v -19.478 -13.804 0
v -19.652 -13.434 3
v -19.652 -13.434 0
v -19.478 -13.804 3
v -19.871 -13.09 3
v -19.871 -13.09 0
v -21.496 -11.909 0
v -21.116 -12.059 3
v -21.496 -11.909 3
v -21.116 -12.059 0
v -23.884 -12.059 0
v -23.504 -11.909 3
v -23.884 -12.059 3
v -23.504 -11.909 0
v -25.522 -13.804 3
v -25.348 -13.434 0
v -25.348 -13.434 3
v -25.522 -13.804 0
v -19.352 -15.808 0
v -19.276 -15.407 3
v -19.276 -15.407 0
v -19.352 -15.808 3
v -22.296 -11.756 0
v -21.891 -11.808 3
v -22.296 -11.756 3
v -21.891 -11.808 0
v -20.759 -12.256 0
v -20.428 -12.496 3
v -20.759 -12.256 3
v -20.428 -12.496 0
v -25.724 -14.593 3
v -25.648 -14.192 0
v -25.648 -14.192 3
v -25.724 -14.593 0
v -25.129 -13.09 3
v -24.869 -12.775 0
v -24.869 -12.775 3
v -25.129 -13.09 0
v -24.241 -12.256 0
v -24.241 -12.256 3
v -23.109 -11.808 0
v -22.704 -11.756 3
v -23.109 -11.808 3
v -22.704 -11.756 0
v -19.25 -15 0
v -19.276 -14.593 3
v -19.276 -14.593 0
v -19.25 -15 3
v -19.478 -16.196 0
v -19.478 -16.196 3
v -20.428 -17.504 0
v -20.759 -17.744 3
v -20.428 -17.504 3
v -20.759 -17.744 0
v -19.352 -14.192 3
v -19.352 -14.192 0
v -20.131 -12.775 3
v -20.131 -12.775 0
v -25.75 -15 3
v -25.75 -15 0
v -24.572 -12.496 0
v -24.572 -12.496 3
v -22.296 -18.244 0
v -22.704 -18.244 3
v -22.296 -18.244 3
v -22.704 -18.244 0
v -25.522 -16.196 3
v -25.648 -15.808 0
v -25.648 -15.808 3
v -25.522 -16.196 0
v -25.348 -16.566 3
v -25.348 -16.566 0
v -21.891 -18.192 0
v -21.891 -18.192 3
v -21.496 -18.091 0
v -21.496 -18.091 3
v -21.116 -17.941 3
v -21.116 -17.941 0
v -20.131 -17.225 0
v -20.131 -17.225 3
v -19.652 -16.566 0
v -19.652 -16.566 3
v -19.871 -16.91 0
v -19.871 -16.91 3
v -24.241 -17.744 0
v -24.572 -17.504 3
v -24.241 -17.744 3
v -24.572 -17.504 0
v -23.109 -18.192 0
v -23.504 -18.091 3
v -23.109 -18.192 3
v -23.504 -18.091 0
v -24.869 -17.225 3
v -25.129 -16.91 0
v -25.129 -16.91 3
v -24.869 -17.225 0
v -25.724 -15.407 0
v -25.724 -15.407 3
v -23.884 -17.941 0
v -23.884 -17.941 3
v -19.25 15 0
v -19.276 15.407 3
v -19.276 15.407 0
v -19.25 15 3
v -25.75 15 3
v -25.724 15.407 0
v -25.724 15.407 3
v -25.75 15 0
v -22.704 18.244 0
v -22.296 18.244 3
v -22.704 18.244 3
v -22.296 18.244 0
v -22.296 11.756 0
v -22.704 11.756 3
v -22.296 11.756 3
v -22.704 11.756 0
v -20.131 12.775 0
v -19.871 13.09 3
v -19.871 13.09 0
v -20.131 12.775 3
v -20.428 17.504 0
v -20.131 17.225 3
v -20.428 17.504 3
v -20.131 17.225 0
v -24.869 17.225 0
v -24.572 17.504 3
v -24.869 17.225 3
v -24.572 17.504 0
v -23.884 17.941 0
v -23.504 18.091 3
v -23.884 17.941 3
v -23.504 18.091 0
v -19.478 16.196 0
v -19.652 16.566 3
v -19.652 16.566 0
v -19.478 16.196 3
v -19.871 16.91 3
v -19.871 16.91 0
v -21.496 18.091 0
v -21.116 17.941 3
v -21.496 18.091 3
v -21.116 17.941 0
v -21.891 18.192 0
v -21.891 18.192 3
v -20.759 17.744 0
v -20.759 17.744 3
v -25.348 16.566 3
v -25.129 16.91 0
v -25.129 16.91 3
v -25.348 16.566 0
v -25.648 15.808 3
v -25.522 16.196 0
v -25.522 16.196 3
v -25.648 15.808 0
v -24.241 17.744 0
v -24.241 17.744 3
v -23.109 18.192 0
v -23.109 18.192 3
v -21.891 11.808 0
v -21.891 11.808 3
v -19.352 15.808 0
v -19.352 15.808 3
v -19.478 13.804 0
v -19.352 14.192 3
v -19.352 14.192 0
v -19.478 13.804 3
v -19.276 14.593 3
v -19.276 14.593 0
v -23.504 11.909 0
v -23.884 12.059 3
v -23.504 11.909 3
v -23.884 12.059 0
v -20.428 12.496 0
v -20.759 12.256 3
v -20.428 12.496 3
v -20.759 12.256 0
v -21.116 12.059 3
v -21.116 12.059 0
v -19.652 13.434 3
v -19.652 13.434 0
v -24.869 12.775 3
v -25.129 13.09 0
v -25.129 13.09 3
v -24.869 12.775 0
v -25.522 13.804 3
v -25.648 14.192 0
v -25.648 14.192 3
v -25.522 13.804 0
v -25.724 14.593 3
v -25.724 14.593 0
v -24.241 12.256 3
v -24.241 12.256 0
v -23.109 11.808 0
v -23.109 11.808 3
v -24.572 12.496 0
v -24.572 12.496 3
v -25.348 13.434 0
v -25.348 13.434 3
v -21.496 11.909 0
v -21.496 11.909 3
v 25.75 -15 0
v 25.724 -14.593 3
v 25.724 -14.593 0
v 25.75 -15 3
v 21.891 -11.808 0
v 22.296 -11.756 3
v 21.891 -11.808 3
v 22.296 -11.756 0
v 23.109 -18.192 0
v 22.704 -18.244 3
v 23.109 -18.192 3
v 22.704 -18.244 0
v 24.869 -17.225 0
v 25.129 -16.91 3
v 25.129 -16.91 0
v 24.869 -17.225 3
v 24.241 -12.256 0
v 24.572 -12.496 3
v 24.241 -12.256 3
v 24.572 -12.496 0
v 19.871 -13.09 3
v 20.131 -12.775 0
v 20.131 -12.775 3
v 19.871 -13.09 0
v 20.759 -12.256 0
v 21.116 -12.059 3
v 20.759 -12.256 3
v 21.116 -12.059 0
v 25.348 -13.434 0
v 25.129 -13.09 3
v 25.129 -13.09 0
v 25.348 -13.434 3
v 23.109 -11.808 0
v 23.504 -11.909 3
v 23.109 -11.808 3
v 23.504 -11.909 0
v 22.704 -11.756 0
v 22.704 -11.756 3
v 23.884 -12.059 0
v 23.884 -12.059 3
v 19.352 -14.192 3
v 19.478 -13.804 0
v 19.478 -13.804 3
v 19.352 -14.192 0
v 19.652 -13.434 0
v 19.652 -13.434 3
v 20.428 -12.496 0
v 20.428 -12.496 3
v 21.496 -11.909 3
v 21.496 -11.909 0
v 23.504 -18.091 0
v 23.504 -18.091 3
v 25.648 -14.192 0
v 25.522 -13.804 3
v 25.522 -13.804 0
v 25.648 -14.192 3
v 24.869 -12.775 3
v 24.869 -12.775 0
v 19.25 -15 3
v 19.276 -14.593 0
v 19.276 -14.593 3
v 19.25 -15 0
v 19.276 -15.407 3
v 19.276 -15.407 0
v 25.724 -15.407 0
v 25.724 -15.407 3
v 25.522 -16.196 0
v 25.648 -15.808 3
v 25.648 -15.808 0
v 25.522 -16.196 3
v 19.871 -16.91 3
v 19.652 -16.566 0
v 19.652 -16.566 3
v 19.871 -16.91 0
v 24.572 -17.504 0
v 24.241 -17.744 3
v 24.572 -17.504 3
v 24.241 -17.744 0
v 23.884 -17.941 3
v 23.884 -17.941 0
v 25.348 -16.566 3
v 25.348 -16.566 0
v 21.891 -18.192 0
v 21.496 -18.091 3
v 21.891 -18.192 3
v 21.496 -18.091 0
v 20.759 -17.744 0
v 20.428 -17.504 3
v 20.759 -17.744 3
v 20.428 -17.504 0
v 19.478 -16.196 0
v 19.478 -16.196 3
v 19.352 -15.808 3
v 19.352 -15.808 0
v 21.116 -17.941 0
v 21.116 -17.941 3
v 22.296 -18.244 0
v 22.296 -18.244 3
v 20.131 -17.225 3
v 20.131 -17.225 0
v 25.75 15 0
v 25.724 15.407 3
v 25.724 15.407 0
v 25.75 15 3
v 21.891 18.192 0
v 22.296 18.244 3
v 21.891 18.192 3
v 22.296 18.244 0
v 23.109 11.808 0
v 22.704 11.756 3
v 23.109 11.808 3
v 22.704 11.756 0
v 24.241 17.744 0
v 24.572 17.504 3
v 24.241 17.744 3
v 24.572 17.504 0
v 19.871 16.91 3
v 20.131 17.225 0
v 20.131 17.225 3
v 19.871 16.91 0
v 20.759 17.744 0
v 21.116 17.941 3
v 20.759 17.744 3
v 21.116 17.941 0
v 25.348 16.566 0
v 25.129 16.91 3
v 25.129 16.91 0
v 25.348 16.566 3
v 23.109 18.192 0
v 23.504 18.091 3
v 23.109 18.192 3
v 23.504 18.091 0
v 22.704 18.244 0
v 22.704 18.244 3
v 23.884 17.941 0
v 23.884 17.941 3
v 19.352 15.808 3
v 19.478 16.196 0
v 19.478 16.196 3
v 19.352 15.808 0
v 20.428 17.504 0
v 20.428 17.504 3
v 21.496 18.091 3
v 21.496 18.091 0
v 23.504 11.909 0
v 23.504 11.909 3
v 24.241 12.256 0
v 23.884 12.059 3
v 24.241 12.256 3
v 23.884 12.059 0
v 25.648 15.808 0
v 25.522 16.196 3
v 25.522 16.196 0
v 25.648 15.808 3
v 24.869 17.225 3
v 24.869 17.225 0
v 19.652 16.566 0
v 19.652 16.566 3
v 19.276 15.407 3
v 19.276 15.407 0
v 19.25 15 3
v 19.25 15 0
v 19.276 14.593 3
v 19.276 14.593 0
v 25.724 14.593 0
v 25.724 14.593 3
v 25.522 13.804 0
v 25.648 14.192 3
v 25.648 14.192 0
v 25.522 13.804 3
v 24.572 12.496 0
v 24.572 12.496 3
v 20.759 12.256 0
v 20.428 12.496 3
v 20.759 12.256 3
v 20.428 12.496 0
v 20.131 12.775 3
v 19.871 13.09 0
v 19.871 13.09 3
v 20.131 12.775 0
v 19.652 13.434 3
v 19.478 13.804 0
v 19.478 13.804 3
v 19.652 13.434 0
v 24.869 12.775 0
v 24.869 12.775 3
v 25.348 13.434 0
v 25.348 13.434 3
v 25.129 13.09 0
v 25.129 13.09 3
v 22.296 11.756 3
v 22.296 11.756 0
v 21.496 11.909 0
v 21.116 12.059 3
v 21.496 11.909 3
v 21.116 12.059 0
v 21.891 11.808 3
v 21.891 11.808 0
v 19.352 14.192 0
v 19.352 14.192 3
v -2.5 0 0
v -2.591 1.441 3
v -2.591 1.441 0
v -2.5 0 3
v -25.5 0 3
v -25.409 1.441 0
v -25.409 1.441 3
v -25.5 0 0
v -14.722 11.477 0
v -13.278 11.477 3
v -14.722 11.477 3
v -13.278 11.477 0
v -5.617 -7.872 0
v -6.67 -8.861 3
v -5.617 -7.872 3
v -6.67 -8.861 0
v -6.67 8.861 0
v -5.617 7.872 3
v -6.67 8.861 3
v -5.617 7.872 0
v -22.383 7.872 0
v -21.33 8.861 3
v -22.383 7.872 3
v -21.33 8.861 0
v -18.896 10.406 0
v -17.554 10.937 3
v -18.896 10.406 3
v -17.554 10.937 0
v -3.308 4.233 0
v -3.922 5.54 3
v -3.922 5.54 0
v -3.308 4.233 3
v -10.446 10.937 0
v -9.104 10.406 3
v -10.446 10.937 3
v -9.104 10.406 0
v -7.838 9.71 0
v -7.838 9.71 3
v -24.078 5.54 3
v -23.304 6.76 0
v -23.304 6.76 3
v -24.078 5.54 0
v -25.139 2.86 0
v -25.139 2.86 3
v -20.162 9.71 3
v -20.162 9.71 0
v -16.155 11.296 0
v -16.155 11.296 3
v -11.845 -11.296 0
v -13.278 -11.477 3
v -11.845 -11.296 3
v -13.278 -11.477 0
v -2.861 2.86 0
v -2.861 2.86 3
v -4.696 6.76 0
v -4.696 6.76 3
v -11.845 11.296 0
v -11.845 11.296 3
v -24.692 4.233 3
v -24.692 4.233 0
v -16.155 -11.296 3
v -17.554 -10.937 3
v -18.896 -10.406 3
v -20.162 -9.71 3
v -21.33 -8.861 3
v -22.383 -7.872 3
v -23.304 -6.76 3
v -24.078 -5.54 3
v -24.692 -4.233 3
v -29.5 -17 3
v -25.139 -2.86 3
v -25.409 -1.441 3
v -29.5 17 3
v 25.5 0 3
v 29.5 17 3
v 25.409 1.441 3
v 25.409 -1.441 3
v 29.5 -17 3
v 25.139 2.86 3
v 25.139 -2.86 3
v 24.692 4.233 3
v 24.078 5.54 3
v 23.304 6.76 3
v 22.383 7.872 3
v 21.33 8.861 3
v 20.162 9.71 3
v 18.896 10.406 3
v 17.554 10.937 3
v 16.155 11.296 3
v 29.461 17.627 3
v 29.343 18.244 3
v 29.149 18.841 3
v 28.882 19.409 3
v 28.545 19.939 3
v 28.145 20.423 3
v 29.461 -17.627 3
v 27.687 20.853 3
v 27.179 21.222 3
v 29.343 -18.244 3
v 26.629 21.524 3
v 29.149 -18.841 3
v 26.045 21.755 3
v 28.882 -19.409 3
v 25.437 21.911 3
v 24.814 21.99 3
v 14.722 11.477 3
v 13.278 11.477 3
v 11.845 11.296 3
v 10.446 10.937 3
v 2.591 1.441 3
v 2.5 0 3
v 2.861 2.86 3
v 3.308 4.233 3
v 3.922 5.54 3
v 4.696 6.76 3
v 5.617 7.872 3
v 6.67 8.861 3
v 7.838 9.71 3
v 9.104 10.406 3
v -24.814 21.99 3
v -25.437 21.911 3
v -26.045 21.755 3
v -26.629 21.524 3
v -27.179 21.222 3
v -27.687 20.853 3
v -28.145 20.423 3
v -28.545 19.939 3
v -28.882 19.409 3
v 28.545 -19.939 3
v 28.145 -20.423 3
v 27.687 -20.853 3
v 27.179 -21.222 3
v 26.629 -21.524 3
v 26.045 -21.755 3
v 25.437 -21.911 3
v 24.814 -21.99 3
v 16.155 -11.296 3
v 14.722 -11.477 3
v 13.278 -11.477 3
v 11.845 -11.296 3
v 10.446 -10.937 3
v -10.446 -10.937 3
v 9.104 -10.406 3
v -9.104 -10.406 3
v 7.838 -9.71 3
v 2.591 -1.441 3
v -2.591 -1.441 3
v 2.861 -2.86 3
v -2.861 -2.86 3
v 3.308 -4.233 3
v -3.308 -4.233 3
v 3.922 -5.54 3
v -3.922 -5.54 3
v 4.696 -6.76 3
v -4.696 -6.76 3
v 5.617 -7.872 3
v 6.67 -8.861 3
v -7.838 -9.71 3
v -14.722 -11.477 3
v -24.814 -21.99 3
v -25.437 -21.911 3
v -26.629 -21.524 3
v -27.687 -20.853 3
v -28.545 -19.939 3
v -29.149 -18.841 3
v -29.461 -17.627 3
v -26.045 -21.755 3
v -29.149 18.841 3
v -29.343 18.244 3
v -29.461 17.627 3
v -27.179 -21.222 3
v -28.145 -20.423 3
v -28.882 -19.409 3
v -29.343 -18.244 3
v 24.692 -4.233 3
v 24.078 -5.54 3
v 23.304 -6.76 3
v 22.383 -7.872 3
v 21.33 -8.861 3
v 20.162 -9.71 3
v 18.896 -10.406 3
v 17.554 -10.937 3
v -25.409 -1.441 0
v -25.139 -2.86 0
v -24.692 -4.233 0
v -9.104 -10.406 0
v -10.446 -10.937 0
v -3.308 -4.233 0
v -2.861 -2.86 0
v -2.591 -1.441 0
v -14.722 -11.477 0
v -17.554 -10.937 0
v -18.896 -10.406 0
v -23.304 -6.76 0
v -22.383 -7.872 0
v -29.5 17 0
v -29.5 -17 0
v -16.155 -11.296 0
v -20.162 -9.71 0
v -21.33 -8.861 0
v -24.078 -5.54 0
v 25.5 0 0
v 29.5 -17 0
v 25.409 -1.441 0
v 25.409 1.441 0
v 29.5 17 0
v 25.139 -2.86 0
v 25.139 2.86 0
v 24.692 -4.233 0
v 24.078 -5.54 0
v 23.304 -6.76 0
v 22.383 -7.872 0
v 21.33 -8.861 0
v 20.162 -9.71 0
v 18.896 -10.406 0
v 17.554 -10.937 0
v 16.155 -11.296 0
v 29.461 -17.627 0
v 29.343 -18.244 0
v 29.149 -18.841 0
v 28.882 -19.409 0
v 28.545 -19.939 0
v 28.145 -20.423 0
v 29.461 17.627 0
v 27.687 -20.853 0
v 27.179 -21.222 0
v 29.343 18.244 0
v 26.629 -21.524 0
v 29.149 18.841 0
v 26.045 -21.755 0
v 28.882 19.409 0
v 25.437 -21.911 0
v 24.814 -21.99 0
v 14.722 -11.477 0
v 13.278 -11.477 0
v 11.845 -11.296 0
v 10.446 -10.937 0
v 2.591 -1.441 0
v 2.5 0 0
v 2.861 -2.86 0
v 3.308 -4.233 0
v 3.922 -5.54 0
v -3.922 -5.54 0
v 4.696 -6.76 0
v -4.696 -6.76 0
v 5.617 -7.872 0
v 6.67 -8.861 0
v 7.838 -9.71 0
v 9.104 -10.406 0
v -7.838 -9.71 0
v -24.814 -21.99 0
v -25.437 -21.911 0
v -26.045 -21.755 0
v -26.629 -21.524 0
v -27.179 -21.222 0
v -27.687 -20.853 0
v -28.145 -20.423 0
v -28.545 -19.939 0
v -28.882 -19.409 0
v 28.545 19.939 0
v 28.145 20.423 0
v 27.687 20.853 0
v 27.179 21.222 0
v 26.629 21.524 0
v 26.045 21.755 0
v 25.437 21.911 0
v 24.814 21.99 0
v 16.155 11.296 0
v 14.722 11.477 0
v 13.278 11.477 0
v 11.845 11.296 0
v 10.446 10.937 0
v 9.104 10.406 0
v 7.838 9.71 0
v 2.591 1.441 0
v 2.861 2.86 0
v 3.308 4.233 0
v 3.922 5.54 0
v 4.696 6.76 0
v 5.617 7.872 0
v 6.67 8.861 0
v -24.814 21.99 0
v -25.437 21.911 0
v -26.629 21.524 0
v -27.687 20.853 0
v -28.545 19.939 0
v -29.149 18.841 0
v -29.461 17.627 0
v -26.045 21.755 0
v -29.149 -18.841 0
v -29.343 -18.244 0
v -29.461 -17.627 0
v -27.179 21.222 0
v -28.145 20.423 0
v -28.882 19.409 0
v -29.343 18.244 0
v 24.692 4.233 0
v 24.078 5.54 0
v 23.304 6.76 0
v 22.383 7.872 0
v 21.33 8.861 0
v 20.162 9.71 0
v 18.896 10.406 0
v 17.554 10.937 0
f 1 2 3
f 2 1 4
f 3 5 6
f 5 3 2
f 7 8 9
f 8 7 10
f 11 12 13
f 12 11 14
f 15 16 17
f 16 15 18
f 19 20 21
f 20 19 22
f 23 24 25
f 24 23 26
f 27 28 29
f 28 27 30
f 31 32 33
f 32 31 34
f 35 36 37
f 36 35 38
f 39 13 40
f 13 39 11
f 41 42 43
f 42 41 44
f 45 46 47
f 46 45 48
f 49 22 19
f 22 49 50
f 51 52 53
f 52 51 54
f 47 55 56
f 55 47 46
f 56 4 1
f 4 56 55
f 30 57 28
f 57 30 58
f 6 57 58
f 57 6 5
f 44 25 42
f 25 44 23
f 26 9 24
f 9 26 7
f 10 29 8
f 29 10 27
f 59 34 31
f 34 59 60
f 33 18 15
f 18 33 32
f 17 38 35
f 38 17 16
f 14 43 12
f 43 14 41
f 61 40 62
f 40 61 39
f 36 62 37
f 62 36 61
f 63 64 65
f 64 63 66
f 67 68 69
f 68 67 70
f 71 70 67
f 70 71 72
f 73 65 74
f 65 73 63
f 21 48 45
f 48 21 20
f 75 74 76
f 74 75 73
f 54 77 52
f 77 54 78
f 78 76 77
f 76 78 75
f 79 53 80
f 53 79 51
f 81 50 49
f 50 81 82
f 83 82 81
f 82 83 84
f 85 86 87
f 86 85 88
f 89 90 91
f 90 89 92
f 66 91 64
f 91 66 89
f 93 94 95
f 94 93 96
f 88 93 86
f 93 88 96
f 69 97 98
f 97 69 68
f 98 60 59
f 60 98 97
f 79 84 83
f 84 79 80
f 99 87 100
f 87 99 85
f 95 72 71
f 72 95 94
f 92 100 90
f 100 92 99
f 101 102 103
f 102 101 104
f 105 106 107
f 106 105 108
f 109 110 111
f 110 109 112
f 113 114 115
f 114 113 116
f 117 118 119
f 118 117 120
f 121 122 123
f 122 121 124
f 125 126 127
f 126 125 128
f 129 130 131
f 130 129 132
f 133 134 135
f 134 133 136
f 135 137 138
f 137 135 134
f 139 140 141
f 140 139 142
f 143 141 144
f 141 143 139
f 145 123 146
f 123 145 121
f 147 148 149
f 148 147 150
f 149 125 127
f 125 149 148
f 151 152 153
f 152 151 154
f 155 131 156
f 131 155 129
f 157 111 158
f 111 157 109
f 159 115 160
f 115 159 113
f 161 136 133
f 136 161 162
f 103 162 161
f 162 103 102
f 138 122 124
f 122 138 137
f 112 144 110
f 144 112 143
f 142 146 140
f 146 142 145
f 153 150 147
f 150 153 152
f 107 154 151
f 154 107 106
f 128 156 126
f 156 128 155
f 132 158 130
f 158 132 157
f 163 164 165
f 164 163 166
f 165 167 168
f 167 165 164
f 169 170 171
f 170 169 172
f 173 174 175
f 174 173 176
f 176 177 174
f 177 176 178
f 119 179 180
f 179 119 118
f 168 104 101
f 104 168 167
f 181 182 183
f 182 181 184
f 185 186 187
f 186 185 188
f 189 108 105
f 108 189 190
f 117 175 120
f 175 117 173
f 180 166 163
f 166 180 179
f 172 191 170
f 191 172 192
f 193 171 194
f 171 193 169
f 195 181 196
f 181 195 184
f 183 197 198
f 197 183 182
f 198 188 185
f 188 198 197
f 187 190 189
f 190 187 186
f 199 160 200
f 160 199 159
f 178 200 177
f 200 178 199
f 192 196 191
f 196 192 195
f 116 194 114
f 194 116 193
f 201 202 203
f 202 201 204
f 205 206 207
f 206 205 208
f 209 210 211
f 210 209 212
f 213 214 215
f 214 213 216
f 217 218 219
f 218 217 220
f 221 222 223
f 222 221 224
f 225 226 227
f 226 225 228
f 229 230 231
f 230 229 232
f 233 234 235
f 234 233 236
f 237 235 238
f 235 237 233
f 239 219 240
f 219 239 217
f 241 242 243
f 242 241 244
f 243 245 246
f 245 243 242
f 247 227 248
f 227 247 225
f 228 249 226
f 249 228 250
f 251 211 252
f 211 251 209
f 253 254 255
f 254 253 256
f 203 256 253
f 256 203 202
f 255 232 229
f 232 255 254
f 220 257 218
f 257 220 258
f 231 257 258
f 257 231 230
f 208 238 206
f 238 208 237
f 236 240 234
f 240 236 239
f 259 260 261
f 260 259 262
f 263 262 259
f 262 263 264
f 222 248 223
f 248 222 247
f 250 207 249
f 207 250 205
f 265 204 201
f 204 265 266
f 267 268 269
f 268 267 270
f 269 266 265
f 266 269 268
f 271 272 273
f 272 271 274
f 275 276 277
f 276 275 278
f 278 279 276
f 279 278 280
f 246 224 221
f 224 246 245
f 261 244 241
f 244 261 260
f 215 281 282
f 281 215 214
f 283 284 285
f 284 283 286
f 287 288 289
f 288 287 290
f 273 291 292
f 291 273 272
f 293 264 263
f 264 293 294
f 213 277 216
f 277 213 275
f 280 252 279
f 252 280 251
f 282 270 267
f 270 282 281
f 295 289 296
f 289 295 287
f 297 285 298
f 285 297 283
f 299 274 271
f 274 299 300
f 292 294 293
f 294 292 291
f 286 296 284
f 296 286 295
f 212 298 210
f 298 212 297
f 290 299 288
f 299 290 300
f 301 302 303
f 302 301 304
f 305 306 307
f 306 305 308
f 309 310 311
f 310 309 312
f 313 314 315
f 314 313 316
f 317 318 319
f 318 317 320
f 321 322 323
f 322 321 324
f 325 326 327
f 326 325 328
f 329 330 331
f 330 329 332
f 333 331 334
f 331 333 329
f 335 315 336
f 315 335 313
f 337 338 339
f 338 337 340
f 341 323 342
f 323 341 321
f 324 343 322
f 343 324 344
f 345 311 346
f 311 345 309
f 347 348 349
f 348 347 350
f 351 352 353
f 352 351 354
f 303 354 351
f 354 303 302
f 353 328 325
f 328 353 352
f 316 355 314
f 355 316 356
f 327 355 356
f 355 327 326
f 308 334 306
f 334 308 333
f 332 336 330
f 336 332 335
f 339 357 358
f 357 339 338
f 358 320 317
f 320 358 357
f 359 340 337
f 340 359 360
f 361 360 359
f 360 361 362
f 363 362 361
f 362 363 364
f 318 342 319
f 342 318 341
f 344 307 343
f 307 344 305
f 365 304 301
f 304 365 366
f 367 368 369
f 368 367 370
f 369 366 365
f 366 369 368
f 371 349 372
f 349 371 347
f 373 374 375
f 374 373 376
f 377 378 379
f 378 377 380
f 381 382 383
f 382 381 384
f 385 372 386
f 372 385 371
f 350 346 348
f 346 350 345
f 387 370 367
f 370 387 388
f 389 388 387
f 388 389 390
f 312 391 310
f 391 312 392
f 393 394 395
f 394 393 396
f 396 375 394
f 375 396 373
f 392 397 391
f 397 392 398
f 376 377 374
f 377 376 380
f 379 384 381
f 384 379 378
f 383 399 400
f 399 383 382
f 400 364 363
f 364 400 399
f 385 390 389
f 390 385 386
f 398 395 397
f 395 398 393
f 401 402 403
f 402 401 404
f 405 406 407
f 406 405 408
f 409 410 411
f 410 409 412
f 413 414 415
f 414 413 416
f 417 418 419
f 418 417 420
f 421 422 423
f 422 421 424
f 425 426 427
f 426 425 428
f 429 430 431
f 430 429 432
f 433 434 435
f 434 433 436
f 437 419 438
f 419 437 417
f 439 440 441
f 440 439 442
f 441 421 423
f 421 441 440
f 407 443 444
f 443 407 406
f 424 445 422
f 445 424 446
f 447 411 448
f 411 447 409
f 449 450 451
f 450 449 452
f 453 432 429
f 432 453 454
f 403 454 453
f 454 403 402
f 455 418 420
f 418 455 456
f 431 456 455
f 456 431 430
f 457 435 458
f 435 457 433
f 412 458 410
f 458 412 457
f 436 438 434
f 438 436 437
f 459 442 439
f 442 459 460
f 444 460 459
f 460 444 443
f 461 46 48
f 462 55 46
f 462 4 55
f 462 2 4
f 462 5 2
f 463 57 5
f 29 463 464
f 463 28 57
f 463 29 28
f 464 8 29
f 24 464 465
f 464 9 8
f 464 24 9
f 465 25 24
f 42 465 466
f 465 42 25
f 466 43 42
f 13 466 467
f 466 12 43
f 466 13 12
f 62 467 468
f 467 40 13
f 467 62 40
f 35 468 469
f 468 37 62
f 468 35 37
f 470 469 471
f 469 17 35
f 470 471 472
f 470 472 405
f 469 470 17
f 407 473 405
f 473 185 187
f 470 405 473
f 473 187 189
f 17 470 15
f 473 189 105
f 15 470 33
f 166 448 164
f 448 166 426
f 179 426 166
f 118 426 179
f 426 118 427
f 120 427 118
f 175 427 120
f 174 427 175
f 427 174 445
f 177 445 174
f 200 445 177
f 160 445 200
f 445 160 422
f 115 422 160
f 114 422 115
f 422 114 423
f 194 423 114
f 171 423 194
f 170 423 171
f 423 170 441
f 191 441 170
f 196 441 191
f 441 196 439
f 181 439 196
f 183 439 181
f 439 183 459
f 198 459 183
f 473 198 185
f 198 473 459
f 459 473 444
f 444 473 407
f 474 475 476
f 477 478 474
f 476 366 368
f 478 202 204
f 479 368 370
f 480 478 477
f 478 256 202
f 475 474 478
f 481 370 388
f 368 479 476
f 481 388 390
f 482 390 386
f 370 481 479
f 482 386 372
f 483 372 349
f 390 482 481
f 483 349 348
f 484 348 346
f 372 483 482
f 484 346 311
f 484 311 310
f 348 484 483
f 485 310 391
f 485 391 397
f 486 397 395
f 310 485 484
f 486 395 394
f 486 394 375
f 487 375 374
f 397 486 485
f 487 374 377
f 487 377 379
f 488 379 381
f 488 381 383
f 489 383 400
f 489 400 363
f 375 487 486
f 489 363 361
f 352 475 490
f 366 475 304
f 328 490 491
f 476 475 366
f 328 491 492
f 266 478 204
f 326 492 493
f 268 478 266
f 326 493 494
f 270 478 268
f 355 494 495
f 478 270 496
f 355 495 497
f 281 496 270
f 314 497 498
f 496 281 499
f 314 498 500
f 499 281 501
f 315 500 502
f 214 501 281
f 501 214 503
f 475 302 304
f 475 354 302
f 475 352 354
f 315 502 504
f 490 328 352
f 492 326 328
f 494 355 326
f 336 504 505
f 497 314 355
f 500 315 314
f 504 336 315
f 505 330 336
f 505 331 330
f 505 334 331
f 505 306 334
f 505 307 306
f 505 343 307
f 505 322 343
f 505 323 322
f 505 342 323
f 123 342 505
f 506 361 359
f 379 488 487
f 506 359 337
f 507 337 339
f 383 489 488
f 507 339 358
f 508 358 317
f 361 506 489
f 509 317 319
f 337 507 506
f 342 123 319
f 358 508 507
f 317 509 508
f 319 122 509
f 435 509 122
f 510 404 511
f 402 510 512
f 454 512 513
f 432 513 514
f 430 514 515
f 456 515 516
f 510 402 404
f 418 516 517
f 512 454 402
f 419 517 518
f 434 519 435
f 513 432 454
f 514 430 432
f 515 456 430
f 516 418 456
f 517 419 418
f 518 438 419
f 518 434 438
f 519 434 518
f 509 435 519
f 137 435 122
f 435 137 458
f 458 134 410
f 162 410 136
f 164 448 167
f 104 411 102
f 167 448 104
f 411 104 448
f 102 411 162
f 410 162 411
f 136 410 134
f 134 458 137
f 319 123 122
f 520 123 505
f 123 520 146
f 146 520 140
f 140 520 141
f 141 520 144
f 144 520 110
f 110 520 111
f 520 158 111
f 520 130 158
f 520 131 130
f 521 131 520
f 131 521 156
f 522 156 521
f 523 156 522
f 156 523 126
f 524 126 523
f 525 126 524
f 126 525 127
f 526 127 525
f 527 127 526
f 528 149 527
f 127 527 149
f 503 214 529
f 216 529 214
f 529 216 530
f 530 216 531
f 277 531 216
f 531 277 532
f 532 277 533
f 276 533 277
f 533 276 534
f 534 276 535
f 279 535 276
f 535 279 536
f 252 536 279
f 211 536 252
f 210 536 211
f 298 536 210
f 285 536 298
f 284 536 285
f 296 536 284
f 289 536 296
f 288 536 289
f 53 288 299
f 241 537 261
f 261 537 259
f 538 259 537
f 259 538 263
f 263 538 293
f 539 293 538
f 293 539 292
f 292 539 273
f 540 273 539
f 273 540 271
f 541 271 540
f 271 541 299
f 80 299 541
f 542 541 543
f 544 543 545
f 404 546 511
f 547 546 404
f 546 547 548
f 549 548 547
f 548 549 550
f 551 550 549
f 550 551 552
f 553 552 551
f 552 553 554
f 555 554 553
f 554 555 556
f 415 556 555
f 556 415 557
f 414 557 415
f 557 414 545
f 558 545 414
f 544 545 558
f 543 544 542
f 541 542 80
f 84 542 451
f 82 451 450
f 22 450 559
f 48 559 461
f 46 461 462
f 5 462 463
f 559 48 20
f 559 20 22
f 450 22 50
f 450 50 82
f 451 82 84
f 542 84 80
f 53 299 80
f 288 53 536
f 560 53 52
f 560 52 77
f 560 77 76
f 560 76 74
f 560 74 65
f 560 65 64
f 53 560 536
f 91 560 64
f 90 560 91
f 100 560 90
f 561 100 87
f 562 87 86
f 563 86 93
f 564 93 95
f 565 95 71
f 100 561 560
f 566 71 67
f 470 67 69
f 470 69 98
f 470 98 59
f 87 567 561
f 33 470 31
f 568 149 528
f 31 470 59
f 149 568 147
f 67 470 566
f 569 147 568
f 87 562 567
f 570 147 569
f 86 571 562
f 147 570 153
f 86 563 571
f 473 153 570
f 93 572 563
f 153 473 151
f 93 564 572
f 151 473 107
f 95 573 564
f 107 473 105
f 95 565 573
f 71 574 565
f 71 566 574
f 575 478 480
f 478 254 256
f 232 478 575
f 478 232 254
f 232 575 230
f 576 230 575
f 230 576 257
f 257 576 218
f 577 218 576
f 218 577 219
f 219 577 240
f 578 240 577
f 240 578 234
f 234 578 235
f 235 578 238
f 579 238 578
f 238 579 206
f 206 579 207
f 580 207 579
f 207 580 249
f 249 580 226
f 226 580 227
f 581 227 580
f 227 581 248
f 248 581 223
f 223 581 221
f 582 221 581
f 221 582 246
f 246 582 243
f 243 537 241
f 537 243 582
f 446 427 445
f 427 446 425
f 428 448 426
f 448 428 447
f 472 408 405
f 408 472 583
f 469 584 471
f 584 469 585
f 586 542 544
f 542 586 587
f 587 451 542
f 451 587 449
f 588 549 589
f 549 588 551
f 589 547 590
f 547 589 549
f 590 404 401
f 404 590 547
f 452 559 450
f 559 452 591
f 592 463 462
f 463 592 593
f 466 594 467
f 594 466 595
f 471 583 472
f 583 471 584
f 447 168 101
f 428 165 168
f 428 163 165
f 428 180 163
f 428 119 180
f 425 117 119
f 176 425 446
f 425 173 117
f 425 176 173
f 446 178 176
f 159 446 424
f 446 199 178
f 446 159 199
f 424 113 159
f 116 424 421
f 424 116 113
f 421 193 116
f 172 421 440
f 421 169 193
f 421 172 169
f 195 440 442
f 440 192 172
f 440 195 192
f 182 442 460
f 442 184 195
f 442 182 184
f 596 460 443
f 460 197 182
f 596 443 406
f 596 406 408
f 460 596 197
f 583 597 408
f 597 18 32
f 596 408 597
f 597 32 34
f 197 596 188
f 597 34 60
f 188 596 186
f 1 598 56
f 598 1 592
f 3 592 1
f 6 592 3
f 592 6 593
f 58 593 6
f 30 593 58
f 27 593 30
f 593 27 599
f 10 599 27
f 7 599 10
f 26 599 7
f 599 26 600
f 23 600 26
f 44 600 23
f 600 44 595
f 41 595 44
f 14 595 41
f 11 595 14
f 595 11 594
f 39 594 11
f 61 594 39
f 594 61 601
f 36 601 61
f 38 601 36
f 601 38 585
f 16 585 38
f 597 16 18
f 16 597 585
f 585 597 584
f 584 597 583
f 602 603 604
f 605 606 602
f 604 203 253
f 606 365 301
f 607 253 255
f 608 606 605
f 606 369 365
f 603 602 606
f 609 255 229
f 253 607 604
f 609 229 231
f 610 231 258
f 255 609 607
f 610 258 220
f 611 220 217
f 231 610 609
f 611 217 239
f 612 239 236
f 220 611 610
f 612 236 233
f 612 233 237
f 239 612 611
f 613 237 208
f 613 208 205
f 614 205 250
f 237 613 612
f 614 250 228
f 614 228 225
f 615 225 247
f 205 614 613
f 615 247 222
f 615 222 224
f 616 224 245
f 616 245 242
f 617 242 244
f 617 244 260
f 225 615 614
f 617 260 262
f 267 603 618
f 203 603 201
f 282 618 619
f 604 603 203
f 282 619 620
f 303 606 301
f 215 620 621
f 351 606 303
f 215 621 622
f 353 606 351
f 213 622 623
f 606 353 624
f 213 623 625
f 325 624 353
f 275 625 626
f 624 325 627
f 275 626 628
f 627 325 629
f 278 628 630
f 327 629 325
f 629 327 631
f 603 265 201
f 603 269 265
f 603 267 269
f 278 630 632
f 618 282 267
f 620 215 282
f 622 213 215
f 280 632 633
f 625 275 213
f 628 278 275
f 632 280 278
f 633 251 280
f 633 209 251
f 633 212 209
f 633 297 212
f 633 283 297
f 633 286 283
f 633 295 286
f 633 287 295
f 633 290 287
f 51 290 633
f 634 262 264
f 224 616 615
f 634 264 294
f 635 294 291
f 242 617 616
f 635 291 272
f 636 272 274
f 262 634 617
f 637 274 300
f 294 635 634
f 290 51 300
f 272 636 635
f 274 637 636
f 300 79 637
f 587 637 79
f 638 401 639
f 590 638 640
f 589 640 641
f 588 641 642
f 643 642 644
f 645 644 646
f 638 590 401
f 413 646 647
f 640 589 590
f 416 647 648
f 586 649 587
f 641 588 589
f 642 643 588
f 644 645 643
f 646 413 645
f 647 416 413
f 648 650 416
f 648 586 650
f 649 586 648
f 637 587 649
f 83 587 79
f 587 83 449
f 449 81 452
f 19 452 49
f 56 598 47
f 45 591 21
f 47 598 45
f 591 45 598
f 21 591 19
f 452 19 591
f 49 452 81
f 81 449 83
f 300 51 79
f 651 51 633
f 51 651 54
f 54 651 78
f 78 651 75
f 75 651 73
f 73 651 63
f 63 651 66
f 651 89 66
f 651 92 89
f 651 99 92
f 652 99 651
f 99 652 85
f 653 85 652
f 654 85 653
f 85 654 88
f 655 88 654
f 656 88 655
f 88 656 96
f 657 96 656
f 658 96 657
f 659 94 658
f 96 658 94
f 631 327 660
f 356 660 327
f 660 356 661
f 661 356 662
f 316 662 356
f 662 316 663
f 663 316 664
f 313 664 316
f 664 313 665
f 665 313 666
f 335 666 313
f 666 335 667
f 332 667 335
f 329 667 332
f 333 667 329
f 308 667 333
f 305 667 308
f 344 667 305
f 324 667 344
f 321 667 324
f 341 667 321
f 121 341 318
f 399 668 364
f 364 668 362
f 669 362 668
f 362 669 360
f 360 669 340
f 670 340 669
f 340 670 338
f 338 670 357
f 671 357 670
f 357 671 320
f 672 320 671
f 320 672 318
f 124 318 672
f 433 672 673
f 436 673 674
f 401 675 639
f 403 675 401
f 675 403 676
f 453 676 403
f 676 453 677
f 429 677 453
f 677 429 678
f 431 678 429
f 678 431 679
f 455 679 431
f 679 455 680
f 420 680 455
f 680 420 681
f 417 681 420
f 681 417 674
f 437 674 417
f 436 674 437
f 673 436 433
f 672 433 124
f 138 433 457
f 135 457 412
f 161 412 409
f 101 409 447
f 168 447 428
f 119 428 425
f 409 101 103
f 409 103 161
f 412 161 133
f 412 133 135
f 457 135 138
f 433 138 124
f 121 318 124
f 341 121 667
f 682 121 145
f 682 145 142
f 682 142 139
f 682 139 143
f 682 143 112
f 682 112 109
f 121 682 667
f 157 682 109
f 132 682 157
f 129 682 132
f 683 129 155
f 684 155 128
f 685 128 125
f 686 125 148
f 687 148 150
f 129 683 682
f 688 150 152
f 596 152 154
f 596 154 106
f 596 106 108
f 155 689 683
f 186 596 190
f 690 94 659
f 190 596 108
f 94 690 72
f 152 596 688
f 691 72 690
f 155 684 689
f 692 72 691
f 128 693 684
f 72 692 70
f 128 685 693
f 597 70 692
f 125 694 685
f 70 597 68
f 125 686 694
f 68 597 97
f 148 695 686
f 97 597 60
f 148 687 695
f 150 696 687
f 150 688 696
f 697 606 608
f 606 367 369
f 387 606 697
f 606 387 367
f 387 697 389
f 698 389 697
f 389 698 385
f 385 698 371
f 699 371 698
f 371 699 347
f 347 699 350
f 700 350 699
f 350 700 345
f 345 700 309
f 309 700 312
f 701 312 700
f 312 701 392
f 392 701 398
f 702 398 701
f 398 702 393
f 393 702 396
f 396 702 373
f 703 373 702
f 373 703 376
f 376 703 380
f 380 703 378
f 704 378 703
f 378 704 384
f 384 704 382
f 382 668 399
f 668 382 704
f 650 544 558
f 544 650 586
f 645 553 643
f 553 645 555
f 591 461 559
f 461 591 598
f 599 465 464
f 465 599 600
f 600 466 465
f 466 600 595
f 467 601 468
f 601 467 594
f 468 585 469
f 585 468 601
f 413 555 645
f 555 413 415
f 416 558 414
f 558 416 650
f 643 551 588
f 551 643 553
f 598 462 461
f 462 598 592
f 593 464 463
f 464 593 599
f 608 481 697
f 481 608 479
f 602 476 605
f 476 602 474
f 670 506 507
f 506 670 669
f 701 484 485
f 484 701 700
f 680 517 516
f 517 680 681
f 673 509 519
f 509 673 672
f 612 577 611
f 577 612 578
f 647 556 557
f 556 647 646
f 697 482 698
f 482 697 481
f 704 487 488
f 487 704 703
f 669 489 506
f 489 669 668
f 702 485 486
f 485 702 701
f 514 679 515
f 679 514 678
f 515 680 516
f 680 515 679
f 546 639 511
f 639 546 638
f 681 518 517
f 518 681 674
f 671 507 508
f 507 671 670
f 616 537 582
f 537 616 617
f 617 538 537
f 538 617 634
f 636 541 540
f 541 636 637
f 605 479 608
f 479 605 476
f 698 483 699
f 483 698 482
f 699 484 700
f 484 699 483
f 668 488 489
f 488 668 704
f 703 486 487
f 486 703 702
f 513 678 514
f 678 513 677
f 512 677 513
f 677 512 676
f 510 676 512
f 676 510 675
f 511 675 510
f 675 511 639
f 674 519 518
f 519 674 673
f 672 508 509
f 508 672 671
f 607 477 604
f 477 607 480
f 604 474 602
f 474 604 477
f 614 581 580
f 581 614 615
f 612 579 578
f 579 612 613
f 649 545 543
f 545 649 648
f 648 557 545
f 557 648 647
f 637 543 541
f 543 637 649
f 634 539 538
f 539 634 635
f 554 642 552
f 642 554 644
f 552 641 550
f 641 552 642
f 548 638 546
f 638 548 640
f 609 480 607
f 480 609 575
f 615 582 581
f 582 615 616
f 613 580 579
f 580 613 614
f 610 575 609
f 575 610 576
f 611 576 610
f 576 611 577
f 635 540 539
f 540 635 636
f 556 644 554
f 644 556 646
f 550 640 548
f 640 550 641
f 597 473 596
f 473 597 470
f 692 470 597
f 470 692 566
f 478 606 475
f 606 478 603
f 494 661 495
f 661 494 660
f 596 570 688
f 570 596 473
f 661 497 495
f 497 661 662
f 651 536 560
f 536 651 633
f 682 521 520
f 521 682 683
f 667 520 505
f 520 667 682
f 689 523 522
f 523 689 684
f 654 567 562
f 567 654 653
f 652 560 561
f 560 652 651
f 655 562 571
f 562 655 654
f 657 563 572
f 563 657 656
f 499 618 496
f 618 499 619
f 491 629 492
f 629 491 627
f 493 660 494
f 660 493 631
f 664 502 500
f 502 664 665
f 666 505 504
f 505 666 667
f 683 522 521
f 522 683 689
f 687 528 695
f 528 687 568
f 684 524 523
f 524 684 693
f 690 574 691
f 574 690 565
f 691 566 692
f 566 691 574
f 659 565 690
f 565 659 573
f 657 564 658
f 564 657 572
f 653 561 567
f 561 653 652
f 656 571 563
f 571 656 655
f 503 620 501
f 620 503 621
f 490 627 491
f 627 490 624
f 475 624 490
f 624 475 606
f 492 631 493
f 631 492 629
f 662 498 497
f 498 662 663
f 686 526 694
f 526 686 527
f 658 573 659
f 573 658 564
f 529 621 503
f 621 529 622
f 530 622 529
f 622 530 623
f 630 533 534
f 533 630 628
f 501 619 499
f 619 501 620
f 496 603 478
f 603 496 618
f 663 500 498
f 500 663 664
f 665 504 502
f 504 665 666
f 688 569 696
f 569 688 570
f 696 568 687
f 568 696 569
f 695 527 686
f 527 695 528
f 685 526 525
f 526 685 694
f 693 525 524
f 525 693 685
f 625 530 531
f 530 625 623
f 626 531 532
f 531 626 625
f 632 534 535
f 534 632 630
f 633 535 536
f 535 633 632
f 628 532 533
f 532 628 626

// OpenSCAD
$fn = 50;


difference() {
	union() {
		hull() {
			translate(v = [-24.5000000000, 17.0000000000, 0]) {
				cylinder(h = 3, r = 5);
			}
			translate(v = [24.5000000000, 17.0000000000, 0]) {
				cylinder(h = 3, r = 5);
			}
			translate(v = [-24.5000000000, -17.0000000000, 0]) {
				cylinder(h = 3, r = 5);
			}
			translate(v = [24.5000000000, -17.0000000000, 0]) {
				cylinder(h = 3, r = 5);
			}
		}
	}
	union() {
		#translate(v = [-22.5000000000, -15.0000000000, -100.0000000000]) {
			cylinder(h = 200, r = 3.2500000000);
		}
		#translate(v = [-22.5000000000, 15.0000000000, -100.0000000000]) {
			cylinder(h = 200, r = 3.2500000000);
		}
		#translate(v = [22.5000000000, -15.0000000000, -100.0000000000]) {
			cylinder(h = 200, r = 3.2500000000);
		}
		#translate(v = [22.5000000000, 15.0000000000, -100.0000000000]) {
			cylinder(h = 200, r = 3.2500000000);
		}
		#translate(v = [-14.0000000000, 0, 0]) {
			cylinder(h = 3, r = 11.5000000000);
		}
		#translate(v = [14.0000000000, 0, 0]) {
			cylinder(h = 3, r = 11.5000000000);
		}
	}
}
